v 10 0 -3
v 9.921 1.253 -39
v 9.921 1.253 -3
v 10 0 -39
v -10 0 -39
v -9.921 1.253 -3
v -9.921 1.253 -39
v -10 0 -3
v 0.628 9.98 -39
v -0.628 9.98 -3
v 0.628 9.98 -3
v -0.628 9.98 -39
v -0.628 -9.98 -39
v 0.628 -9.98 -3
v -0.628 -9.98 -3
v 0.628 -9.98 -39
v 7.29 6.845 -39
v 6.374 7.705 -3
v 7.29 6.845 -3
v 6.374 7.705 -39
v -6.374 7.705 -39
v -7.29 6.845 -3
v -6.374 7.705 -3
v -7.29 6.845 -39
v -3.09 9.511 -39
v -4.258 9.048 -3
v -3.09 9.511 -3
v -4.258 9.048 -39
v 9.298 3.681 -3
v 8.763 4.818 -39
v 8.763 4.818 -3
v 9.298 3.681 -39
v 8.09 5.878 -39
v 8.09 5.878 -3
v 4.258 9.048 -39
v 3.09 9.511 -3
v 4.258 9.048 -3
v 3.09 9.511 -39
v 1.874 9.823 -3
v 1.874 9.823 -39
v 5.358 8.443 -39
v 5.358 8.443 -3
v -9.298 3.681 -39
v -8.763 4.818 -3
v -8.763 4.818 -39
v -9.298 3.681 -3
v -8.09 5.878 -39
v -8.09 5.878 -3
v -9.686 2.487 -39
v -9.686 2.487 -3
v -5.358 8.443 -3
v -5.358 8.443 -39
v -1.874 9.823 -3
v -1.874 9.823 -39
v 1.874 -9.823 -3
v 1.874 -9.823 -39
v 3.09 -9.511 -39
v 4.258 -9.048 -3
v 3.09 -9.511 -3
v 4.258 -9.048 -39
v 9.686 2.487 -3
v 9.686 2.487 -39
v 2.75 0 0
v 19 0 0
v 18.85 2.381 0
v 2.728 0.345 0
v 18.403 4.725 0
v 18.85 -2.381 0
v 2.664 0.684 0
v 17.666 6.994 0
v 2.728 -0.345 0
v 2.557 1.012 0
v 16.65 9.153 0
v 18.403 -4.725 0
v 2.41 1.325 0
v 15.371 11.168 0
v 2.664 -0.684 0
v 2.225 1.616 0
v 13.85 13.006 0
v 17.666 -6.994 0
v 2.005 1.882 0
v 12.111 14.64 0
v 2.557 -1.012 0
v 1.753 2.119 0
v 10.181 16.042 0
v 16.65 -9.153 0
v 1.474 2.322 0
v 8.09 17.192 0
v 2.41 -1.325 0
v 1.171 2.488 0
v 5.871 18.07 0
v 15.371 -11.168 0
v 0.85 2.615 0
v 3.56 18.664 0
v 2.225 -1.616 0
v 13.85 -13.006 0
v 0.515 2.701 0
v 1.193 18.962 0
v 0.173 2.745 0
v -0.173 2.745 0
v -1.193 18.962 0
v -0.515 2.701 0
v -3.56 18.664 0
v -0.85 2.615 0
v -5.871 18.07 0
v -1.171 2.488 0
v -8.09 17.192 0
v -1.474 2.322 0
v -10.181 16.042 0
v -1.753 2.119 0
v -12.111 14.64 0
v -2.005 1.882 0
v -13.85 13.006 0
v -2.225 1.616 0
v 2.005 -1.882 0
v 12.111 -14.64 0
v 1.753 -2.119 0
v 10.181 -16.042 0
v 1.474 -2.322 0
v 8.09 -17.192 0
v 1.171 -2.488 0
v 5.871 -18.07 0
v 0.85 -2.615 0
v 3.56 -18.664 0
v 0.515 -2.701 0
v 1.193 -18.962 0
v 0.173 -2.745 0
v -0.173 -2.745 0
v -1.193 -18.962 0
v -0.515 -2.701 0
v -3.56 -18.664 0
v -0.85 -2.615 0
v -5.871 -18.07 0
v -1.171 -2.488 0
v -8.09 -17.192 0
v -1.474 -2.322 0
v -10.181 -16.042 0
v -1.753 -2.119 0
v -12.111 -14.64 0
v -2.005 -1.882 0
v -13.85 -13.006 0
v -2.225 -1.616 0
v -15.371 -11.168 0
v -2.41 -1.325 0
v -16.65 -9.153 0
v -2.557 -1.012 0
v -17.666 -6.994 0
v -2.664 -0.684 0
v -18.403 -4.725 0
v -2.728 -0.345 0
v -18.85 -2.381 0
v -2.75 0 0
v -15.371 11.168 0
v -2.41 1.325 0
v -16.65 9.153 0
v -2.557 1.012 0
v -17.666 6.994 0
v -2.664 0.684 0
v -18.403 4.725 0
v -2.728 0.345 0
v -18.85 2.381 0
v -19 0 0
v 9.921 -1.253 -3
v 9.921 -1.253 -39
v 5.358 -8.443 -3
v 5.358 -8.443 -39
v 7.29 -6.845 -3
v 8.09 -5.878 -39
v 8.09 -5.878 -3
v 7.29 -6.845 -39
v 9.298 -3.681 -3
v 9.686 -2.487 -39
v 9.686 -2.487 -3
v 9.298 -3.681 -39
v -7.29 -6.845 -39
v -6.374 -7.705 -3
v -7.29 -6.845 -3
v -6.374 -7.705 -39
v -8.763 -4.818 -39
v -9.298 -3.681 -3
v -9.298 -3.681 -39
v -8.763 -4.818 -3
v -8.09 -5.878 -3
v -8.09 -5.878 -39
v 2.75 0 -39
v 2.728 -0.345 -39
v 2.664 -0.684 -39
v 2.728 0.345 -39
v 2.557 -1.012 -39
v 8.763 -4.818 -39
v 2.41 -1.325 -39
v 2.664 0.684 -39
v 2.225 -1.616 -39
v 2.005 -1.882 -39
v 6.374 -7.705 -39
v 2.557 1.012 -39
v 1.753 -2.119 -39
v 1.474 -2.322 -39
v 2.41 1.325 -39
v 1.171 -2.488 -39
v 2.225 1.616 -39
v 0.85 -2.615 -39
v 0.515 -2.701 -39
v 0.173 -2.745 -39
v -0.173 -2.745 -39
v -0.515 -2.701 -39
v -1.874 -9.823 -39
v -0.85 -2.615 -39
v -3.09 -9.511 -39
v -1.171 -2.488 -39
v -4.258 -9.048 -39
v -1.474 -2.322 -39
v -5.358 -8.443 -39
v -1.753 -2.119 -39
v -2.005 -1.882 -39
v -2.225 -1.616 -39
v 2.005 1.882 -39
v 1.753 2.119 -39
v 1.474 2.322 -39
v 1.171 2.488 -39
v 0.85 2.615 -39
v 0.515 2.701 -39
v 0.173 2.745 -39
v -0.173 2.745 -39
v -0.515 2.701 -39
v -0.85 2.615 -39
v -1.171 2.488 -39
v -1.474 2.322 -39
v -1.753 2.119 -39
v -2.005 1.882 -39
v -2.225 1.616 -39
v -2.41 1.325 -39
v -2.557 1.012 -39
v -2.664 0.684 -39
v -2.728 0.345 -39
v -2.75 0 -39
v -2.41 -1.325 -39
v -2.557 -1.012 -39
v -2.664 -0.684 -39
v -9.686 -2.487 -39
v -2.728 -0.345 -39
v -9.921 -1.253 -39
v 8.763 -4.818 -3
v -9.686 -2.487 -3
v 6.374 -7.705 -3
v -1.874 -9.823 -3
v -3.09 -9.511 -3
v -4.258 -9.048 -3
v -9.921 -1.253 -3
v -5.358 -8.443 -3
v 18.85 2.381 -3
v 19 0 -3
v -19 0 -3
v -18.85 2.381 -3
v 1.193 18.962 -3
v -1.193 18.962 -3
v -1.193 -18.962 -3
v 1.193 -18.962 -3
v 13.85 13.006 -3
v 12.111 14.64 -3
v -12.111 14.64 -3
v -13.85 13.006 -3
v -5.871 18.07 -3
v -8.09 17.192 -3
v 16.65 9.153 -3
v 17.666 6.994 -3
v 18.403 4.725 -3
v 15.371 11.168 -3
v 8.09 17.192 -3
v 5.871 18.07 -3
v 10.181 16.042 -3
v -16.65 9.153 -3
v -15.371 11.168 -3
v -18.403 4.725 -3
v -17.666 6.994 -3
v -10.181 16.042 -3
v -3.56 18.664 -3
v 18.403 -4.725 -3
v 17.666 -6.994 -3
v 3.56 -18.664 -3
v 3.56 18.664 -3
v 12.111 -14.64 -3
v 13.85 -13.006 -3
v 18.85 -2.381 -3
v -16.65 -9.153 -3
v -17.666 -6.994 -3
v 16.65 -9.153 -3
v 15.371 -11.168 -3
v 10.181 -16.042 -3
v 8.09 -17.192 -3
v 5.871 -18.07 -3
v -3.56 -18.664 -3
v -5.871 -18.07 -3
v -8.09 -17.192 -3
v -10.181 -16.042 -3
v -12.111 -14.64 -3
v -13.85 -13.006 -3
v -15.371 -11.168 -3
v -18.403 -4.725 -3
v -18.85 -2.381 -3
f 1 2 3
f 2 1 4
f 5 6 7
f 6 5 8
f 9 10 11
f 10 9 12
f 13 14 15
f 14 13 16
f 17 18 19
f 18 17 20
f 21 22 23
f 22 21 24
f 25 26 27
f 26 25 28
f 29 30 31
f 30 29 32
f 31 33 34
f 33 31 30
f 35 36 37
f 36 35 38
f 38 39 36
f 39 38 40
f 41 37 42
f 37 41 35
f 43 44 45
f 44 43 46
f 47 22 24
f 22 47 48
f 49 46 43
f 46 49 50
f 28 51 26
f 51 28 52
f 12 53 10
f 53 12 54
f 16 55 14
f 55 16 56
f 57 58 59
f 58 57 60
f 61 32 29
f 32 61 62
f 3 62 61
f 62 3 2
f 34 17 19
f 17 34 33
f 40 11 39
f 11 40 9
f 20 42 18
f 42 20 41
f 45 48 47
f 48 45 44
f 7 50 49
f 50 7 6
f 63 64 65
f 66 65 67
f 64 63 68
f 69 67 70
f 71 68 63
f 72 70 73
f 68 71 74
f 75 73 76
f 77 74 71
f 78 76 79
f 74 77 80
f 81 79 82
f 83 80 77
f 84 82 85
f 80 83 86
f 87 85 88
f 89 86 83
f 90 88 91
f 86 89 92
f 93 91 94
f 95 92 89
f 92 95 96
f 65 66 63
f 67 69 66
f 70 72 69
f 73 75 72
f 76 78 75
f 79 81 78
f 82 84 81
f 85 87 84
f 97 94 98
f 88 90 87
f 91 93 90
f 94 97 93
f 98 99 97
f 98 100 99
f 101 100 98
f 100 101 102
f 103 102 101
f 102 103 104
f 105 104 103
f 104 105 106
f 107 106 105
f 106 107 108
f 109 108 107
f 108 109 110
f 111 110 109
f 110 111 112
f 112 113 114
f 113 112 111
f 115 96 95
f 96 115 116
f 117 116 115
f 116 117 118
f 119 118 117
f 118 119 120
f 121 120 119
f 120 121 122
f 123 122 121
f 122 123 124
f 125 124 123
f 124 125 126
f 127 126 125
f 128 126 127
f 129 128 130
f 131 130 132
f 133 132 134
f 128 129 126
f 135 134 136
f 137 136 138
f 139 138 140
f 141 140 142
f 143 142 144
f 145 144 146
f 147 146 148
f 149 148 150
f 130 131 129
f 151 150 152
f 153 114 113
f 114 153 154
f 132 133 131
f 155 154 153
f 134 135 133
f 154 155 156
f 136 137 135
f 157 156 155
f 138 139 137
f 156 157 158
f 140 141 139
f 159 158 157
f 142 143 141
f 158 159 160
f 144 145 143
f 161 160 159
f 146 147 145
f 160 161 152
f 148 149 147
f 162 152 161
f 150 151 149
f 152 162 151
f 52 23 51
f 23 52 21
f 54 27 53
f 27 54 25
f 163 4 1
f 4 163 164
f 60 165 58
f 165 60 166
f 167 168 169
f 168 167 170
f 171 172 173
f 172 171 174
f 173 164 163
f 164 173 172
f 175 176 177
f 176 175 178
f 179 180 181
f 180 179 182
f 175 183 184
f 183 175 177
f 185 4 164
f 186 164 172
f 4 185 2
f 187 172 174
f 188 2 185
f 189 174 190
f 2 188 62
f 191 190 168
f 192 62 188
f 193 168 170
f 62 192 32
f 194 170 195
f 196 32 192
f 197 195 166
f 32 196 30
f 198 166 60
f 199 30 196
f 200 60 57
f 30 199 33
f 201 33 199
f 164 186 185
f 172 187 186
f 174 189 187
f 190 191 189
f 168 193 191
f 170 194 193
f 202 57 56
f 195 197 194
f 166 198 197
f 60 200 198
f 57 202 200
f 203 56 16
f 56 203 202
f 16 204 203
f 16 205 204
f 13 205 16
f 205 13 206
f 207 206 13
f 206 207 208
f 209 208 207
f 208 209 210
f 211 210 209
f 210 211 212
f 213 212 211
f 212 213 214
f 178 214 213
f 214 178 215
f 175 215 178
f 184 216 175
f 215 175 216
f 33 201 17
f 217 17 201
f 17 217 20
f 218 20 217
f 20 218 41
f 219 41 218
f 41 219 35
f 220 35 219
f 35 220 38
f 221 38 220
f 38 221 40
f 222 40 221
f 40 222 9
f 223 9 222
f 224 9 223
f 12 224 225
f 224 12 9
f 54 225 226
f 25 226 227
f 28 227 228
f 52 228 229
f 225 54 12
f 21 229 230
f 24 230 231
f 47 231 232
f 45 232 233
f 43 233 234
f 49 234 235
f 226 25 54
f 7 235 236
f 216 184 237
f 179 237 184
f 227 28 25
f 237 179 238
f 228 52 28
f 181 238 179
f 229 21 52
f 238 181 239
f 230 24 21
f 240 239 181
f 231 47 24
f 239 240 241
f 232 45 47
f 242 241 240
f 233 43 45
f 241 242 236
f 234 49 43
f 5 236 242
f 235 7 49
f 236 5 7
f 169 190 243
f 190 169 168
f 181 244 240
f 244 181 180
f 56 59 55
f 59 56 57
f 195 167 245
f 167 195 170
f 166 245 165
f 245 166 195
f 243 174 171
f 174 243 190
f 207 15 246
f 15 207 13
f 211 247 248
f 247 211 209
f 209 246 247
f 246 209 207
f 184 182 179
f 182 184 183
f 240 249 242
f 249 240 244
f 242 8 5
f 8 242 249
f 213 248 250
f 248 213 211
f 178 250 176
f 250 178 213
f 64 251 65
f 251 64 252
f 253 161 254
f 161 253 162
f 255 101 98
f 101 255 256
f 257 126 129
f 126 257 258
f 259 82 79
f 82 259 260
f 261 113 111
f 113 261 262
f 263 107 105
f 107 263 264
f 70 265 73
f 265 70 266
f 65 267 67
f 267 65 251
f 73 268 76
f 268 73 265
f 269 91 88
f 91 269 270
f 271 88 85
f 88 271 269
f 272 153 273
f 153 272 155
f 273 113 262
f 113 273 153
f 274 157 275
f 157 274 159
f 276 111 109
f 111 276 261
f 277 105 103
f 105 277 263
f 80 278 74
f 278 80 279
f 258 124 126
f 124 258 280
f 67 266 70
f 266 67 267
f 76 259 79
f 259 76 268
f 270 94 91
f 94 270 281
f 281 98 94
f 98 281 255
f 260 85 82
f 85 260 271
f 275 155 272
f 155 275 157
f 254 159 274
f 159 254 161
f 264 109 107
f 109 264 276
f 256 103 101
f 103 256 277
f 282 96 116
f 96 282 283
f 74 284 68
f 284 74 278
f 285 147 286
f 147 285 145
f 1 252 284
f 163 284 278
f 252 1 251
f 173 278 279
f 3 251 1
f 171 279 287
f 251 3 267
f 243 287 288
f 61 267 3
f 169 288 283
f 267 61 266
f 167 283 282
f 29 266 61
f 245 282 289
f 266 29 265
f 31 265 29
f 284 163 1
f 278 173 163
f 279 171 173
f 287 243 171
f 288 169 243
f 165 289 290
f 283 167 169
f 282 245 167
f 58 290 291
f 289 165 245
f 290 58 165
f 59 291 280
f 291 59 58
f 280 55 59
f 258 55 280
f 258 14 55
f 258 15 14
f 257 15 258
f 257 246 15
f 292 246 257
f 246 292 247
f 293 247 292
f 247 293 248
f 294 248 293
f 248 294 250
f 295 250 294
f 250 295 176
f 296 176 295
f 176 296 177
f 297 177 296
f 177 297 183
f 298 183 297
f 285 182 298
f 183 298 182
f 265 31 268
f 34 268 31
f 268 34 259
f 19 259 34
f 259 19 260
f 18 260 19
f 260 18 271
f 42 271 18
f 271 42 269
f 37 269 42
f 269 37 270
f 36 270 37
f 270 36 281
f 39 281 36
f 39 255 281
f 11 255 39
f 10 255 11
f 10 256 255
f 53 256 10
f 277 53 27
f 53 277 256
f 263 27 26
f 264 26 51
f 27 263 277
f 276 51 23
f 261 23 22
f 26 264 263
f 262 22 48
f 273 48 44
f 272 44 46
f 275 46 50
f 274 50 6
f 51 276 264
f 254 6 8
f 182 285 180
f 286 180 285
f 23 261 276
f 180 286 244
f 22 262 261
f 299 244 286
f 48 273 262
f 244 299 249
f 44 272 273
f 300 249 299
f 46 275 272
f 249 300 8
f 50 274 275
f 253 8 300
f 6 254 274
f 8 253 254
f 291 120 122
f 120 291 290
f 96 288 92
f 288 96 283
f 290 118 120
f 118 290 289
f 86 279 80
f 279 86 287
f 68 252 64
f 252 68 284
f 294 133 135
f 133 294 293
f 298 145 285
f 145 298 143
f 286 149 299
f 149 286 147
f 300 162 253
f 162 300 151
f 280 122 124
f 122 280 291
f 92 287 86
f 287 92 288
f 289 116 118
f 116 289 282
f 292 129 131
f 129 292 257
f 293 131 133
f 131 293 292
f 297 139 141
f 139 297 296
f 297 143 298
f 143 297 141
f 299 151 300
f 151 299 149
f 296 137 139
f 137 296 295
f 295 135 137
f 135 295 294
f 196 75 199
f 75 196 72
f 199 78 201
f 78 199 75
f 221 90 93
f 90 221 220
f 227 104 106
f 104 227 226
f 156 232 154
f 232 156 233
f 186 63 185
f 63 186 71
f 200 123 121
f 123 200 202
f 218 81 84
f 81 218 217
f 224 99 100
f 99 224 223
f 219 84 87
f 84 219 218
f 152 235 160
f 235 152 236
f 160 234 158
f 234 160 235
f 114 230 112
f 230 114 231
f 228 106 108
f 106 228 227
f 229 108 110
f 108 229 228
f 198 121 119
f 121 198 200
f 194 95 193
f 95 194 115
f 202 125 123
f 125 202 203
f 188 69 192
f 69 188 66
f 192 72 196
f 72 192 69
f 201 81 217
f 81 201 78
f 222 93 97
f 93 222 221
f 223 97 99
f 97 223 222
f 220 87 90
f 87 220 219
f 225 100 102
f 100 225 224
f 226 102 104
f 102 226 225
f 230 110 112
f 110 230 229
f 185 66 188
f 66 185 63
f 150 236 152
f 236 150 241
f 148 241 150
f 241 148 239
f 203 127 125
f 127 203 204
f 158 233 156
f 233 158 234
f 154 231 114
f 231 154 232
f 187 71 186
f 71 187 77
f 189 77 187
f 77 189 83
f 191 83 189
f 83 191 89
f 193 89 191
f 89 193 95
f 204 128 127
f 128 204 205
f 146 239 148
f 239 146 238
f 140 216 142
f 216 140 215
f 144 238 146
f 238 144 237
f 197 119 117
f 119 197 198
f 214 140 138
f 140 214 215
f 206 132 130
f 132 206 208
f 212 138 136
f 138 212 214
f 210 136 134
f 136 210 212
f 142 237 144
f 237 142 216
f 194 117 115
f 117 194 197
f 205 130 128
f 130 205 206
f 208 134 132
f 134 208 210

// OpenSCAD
$fn = 50;


difference() {
	union() {
		translate(v = [0, 0, -39.0000000000]) {
			cylinder(h = 39, r = 10.0000000000);
		}
		translate(v = [0, 0, -3.0000000000]) {
			cylinder(h = 3, r = 19.0000000000);
		}
	}
	union() {
		#translate(v = [0, 0, -39]) {
			cylinder(h = 39, r = 2.7500000000);
		}
	}
}
